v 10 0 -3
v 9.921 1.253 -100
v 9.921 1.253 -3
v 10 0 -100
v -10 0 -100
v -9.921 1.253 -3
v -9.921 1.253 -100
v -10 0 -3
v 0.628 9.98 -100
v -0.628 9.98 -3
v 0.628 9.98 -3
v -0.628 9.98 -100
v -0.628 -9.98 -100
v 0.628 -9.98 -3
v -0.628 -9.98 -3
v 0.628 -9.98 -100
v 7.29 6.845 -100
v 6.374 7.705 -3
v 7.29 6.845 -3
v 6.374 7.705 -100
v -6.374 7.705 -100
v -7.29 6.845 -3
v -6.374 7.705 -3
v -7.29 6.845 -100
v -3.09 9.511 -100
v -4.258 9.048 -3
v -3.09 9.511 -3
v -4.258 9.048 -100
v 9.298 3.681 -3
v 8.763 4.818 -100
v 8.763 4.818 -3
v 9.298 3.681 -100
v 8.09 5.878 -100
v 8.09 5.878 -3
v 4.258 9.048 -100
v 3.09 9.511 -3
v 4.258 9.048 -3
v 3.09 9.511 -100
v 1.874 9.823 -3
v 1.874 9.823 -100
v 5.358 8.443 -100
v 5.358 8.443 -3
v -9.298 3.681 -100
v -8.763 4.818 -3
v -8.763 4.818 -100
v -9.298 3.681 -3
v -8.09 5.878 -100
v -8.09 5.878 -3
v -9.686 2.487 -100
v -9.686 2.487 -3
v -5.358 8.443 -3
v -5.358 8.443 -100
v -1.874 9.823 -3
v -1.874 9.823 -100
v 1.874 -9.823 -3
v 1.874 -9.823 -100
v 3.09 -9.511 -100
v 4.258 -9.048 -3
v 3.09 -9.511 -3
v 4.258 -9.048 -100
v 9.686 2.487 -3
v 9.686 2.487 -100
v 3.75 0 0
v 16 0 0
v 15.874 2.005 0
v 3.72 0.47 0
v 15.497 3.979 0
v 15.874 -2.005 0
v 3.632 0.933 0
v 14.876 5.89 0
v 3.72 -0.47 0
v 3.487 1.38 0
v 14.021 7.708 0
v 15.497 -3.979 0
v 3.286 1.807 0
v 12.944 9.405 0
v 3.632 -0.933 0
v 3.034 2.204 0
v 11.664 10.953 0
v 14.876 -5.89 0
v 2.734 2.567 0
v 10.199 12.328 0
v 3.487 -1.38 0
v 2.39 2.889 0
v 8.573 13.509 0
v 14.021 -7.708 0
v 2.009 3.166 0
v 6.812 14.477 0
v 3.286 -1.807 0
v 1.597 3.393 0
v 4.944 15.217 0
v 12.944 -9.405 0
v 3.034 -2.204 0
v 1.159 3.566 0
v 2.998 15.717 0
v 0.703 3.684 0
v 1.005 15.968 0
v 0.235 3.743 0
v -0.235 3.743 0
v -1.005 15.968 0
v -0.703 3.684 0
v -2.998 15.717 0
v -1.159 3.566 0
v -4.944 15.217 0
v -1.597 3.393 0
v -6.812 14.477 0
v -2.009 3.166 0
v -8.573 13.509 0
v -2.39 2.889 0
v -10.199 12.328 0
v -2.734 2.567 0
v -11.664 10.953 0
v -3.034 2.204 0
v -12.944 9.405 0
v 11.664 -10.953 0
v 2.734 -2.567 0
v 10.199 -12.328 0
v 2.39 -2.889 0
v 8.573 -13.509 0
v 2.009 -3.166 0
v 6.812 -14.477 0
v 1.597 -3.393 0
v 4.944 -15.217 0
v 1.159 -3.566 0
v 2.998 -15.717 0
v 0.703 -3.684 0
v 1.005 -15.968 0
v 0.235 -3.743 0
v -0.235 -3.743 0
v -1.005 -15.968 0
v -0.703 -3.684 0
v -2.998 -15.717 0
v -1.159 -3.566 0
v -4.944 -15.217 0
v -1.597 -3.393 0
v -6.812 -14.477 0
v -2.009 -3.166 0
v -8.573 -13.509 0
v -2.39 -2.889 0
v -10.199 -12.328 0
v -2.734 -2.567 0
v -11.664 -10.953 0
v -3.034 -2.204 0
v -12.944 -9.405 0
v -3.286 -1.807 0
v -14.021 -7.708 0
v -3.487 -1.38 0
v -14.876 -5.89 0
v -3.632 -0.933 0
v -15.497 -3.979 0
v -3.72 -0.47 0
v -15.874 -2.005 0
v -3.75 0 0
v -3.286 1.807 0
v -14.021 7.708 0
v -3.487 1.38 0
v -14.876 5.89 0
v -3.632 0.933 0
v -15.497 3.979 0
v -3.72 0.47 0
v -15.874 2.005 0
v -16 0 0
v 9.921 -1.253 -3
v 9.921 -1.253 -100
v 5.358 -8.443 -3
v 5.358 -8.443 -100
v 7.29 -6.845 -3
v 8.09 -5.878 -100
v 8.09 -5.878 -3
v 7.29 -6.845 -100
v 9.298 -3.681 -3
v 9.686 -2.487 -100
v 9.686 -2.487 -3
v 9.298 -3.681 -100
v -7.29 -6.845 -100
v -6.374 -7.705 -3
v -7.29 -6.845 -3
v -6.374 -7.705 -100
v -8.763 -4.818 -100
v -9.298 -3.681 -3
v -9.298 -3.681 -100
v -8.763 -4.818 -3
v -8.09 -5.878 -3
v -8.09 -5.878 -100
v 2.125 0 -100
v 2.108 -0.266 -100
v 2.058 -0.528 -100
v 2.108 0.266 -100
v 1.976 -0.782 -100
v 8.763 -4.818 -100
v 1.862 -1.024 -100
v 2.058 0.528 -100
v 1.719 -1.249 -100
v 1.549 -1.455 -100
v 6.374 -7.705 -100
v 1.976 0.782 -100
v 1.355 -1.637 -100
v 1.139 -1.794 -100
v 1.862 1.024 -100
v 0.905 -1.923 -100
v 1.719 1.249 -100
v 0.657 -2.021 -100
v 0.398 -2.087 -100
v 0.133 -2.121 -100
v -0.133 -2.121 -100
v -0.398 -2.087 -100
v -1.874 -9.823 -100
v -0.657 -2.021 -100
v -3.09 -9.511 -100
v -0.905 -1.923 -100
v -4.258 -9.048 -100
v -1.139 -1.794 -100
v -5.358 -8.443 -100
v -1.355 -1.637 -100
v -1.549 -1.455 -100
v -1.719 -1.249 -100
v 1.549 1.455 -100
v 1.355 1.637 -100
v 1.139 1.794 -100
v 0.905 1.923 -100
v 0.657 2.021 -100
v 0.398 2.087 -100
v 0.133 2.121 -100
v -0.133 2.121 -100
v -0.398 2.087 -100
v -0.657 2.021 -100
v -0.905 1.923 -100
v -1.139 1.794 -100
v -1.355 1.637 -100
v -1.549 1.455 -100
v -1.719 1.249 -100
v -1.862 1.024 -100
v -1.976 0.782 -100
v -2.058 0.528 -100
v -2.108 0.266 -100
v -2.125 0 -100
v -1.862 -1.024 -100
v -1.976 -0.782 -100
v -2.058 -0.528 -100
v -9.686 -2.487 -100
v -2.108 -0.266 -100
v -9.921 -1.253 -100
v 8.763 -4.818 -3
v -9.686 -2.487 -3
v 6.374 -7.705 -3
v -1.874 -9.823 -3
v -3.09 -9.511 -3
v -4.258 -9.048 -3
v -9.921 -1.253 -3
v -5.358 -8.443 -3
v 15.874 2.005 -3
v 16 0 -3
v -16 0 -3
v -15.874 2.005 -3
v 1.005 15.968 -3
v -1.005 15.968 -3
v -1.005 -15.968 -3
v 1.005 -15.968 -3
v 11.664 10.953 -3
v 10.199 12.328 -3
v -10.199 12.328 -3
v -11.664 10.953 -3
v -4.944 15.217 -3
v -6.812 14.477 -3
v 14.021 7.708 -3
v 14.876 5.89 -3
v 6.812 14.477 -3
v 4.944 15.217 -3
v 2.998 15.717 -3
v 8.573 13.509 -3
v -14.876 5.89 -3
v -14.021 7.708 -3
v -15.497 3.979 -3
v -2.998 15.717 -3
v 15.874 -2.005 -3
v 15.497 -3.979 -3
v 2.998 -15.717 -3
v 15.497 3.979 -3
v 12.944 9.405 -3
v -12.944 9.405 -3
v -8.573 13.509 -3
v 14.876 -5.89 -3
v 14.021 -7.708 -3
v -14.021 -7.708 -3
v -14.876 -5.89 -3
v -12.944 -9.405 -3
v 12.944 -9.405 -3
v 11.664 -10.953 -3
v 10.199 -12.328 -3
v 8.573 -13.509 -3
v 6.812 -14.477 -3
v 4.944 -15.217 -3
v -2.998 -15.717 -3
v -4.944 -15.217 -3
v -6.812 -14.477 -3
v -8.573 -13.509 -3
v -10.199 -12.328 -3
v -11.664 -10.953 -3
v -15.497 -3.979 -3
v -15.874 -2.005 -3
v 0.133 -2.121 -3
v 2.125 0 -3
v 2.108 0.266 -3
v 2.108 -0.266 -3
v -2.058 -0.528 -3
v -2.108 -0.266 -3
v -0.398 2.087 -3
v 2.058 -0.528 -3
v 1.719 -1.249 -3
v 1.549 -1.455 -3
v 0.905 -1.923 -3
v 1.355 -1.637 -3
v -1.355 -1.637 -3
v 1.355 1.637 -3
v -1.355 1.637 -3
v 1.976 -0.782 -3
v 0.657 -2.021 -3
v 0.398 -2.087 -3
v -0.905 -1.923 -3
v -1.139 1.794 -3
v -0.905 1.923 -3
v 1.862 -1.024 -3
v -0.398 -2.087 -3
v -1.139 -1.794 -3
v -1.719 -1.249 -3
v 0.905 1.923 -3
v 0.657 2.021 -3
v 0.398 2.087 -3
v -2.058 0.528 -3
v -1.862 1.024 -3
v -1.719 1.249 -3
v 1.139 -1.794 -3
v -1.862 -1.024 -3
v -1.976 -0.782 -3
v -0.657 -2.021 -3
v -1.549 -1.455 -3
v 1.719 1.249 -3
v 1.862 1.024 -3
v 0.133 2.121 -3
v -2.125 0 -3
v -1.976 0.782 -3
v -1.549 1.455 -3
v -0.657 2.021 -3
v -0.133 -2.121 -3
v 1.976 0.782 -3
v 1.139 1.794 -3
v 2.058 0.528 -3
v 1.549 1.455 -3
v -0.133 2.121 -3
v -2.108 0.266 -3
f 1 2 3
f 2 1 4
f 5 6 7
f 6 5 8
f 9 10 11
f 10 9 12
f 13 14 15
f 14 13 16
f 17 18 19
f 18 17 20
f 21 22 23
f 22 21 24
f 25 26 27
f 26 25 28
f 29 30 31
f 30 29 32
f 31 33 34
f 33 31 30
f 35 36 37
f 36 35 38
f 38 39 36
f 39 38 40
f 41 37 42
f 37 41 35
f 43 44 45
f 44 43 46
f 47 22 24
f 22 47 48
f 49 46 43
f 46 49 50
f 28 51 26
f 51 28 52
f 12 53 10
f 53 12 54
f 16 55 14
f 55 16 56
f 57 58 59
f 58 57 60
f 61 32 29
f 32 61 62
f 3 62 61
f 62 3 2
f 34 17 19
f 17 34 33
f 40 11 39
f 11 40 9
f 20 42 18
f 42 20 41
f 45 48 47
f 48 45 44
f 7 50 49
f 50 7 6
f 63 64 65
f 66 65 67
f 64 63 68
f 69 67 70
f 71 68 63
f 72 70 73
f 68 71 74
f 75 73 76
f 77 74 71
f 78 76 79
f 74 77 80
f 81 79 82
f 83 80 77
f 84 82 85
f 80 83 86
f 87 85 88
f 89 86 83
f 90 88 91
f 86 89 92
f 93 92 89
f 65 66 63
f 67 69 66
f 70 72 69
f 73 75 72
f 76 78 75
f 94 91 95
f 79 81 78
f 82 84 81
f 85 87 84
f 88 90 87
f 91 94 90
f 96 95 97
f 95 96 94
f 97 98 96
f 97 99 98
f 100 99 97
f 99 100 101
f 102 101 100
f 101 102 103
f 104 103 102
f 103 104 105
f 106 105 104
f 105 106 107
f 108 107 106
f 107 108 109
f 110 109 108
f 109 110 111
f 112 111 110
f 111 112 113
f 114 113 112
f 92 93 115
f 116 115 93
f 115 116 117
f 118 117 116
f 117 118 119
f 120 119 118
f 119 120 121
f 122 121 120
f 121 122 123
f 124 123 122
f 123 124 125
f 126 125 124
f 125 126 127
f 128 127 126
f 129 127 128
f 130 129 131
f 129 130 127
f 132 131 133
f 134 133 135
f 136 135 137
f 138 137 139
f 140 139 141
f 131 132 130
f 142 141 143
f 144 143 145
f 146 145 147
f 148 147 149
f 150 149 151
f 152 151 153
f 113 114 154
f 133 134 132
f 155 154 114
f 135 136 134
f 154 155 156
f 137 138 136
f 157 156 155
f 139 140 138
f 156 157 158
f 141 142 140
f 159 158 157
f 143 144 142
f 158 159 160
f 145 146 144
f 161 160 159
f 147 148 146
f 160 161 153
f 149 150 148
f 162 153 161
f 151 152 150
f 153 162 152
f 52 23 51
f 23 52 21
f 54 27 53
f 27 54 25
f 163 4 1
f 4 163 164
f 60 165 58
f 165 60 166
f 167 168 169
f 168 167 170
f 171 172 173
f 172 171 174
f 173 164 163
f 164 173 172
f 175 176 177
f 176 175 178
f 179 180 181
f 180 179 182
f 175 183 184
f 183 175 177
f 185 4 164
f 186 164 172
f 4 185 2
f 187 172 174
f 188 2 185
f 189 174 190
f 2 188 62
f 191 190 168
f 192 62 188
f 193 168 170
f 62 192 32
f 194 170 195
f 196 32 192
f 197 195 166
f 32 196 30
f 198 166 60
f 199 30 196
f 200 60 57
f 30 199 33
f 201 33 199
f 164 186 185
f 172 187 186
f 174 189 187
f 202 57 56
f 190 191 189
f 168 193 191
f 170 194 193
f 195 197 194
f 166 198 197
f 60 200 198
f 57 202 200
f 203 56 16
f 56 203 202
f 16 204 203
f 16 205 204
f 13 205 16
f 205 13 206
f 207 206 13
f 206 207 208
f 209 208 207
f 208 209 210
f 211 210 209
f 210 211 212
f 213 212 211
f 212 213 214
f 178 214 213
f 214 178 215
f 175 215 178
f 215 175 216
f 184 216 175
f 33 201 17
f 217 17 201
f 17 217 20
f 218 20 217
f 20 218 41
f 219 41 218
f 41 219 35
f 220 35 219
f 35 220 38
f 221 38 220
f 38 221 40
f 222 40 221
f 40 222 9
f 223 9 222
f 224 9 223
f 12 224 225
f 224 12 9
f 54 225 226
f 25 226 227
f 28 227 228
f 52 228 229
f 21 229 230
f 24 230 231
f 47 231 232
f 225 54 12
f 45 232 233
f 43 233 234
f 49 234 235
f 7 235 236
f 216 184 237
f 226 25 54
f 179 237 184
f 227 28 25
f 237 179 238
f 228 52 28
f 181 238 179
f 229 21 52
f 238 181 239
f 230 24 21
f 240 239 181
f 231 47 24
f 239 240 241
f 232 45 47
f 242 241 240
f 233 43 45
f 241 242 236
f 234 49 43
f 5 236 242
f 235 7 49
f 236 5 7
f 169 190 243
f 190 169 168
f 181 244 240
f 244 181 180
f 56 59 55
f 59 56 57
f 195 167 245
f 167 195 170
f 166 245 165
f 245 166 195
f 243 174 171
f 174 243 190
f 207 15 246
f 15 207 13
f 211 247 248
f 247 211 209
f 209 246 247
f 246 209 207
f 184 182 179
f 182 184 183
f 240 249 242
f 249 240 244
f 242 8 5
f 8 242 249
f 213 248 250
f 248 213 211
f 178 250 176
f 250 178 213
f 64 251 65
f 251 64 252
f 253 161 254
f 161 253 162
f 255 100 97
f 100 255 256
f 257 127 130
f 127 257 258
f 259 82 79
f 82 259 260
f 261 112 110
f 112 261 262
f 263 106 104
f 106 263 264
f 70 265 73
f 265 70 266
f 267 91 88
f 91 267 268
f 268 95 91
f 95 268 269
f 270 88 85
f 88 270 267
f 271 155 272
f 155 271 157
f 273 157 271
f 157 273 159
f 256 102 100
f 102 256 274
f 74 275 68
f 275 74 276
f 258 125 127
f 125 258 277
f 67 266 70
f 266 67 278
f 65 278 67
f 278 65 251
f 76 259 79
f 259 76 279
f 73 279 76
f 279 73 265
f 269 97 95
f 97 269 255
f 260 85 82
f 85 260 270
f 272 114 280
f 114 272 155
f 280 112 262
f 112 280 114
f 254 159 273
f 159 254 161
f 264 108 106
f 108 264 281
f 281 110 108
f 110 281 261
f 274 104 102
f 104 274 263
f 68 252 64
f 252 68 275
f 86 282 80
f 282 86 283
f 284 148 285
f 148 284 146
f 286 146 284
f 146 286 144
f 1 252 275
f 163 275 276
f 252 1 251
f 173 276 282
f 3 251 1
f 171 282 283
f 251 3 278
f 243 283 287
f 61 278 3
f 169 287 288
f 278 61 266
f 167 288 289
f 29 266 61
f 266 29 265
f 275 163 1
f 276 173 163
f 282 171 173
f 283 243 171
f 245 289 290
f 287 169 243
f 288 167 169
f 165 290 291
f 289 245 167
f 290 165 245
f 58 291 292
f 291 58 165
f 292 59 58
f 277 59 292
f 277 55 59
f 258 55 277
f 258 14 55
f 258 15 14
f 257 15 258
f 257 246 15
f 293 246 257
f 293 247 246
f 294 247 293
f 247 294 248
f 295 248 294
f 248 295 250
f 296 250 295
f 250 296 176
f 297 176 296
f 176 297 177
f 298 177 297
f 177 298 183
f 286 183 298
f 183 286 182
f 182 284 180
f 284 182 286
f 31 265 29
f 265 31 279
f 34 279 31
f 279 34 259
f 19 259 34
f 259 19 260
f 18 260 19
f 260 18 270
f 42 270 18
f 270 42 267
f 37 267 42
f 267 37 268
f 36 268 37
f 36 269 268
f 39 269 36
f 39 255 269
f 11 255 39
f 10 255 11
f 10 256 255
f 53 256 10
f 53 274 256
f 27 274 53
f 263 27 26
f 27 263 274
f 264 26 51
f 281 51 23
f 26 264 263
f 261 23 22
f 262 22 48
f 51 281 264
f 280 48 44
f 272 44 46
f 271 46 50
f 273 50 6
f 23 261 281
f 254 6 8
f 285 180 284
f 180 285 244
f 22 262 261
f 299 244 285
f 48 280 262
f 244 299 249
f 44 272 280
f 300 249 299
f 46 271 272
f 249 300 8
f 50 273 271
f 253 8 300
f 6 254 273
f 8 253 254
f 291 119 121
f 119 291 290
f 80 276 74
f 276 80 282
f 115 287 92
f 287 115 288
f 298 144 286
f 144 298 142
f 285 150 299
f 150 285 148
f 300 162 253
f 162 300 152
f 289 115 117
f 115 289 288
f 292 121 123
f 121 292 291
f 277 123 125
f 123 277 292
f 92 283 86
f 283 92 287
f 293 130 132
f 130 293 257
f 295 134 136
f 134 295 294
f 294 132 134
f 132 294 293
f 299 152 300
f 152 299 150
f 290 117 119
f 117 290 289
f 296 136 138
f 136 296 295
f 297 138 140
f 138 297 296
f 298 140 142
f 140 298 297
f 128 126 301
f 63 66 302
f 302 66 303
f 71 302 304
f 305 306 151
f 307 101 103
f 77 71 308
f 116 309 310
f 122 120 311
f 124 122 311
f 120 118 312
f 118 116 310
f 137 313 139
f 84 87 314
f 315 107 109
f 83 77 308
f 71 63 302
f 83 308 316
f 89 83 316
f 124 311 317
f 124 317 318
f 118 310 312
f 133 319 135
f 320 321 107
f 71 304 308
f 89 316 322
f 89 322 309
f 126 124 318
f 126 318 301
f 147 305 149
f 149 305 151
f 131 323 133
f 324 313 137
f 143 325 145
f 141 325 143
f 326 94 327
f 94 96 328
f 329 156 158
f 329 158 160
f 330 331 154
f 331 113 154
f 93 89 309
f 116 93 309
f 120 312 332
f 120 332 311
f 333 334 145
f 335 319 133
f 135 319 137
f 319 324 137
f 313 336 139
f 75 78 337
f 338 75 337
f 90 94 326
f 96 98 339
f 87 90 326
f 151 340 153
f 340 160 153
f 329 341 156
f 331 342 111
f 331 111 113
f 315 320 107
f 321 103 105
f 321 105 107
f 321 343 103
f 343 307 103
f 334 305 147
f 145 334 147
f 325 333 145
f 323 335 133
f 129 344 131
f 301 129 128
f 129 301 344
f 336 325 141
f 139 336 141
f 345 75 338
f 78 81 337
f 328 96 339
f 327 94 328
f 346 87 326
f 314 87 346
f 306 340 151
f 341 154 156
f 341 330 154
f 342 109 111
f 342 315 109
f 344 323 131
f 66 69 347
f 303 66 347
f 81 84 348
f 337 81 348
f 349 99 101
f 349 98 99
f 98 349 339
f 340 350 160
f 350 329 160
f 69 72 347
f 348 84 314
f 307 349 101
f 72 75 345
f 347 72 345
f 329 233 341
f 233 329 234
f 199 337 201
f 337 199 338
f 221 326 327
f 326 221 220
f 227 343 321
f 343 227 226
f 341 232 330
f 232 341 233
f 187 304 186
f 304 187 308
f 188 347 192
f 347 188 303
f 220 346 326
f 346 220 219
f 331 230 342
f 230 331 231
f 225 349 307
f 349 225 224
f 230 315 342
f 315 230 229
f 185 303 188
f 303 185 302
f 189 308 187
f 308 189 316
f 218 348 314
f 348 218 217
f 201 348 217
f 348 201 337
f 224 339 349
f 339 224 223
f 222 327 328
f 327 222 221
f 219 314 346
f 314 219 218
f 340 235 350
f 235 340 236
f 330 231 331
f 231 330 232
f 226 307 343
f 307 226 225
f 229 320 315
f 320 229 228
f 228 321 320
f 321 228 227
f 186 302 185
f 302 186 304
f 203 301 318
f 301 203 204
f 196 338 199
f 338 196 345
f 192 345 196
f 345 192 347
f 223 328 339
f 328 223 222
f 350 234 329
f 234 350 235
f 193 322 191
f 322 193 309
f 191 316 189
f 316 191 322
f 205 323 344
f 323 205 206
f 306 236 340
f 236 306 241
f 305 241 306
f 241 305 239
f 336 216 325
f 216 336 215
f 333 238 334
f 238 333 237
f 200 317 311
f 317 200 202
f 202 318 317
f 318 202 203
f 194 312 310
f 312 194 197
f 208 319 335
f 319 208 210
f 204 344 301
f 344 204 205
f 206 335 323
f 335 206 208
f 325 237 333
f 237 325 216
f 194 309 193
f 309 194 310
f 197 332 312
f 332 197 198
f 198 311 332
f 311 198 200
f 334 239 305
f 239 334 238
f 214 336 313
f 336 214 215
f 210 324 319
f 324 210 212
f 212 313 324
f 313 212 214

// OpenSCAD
$fn = 50;


difference() {
	union() {
		translate(v = [0, 0, -100.0000000000]) {
			cylinder(h = 100, r = 10.0000000000);
		}
		translate(v = [0, 0, -3.0000000000]) {
			cylinder(h = 3, r = 16.0000000000);
		}
	}
	union() {
		translate(v = [0, 0, 0]) {
			rotate(a = [0, 0, 0]) {
				difference() {
					union() {
						#translate(v = [0, 0, -100.0000000000]) {
							cylinder(h = 100, r = 2.0000000000);
						}
						#translate(v = [0, 0, -3]) {
							cylinder(h = 3, r = 10.0000000000, r1 = 2.1250000000, r2 = 3.7500000000);
						}
						#translate(v = [0, 0, -100.0000000000]) {
							cylinder(h = 100, r = 2.1250000000);
						}
						#translate(v = [0, 0, -100.0000000000]) {
							cylinder(h = 100, r = 2.0000000000);
						}
					}
					union();
				}
			}
		}
	}
}
